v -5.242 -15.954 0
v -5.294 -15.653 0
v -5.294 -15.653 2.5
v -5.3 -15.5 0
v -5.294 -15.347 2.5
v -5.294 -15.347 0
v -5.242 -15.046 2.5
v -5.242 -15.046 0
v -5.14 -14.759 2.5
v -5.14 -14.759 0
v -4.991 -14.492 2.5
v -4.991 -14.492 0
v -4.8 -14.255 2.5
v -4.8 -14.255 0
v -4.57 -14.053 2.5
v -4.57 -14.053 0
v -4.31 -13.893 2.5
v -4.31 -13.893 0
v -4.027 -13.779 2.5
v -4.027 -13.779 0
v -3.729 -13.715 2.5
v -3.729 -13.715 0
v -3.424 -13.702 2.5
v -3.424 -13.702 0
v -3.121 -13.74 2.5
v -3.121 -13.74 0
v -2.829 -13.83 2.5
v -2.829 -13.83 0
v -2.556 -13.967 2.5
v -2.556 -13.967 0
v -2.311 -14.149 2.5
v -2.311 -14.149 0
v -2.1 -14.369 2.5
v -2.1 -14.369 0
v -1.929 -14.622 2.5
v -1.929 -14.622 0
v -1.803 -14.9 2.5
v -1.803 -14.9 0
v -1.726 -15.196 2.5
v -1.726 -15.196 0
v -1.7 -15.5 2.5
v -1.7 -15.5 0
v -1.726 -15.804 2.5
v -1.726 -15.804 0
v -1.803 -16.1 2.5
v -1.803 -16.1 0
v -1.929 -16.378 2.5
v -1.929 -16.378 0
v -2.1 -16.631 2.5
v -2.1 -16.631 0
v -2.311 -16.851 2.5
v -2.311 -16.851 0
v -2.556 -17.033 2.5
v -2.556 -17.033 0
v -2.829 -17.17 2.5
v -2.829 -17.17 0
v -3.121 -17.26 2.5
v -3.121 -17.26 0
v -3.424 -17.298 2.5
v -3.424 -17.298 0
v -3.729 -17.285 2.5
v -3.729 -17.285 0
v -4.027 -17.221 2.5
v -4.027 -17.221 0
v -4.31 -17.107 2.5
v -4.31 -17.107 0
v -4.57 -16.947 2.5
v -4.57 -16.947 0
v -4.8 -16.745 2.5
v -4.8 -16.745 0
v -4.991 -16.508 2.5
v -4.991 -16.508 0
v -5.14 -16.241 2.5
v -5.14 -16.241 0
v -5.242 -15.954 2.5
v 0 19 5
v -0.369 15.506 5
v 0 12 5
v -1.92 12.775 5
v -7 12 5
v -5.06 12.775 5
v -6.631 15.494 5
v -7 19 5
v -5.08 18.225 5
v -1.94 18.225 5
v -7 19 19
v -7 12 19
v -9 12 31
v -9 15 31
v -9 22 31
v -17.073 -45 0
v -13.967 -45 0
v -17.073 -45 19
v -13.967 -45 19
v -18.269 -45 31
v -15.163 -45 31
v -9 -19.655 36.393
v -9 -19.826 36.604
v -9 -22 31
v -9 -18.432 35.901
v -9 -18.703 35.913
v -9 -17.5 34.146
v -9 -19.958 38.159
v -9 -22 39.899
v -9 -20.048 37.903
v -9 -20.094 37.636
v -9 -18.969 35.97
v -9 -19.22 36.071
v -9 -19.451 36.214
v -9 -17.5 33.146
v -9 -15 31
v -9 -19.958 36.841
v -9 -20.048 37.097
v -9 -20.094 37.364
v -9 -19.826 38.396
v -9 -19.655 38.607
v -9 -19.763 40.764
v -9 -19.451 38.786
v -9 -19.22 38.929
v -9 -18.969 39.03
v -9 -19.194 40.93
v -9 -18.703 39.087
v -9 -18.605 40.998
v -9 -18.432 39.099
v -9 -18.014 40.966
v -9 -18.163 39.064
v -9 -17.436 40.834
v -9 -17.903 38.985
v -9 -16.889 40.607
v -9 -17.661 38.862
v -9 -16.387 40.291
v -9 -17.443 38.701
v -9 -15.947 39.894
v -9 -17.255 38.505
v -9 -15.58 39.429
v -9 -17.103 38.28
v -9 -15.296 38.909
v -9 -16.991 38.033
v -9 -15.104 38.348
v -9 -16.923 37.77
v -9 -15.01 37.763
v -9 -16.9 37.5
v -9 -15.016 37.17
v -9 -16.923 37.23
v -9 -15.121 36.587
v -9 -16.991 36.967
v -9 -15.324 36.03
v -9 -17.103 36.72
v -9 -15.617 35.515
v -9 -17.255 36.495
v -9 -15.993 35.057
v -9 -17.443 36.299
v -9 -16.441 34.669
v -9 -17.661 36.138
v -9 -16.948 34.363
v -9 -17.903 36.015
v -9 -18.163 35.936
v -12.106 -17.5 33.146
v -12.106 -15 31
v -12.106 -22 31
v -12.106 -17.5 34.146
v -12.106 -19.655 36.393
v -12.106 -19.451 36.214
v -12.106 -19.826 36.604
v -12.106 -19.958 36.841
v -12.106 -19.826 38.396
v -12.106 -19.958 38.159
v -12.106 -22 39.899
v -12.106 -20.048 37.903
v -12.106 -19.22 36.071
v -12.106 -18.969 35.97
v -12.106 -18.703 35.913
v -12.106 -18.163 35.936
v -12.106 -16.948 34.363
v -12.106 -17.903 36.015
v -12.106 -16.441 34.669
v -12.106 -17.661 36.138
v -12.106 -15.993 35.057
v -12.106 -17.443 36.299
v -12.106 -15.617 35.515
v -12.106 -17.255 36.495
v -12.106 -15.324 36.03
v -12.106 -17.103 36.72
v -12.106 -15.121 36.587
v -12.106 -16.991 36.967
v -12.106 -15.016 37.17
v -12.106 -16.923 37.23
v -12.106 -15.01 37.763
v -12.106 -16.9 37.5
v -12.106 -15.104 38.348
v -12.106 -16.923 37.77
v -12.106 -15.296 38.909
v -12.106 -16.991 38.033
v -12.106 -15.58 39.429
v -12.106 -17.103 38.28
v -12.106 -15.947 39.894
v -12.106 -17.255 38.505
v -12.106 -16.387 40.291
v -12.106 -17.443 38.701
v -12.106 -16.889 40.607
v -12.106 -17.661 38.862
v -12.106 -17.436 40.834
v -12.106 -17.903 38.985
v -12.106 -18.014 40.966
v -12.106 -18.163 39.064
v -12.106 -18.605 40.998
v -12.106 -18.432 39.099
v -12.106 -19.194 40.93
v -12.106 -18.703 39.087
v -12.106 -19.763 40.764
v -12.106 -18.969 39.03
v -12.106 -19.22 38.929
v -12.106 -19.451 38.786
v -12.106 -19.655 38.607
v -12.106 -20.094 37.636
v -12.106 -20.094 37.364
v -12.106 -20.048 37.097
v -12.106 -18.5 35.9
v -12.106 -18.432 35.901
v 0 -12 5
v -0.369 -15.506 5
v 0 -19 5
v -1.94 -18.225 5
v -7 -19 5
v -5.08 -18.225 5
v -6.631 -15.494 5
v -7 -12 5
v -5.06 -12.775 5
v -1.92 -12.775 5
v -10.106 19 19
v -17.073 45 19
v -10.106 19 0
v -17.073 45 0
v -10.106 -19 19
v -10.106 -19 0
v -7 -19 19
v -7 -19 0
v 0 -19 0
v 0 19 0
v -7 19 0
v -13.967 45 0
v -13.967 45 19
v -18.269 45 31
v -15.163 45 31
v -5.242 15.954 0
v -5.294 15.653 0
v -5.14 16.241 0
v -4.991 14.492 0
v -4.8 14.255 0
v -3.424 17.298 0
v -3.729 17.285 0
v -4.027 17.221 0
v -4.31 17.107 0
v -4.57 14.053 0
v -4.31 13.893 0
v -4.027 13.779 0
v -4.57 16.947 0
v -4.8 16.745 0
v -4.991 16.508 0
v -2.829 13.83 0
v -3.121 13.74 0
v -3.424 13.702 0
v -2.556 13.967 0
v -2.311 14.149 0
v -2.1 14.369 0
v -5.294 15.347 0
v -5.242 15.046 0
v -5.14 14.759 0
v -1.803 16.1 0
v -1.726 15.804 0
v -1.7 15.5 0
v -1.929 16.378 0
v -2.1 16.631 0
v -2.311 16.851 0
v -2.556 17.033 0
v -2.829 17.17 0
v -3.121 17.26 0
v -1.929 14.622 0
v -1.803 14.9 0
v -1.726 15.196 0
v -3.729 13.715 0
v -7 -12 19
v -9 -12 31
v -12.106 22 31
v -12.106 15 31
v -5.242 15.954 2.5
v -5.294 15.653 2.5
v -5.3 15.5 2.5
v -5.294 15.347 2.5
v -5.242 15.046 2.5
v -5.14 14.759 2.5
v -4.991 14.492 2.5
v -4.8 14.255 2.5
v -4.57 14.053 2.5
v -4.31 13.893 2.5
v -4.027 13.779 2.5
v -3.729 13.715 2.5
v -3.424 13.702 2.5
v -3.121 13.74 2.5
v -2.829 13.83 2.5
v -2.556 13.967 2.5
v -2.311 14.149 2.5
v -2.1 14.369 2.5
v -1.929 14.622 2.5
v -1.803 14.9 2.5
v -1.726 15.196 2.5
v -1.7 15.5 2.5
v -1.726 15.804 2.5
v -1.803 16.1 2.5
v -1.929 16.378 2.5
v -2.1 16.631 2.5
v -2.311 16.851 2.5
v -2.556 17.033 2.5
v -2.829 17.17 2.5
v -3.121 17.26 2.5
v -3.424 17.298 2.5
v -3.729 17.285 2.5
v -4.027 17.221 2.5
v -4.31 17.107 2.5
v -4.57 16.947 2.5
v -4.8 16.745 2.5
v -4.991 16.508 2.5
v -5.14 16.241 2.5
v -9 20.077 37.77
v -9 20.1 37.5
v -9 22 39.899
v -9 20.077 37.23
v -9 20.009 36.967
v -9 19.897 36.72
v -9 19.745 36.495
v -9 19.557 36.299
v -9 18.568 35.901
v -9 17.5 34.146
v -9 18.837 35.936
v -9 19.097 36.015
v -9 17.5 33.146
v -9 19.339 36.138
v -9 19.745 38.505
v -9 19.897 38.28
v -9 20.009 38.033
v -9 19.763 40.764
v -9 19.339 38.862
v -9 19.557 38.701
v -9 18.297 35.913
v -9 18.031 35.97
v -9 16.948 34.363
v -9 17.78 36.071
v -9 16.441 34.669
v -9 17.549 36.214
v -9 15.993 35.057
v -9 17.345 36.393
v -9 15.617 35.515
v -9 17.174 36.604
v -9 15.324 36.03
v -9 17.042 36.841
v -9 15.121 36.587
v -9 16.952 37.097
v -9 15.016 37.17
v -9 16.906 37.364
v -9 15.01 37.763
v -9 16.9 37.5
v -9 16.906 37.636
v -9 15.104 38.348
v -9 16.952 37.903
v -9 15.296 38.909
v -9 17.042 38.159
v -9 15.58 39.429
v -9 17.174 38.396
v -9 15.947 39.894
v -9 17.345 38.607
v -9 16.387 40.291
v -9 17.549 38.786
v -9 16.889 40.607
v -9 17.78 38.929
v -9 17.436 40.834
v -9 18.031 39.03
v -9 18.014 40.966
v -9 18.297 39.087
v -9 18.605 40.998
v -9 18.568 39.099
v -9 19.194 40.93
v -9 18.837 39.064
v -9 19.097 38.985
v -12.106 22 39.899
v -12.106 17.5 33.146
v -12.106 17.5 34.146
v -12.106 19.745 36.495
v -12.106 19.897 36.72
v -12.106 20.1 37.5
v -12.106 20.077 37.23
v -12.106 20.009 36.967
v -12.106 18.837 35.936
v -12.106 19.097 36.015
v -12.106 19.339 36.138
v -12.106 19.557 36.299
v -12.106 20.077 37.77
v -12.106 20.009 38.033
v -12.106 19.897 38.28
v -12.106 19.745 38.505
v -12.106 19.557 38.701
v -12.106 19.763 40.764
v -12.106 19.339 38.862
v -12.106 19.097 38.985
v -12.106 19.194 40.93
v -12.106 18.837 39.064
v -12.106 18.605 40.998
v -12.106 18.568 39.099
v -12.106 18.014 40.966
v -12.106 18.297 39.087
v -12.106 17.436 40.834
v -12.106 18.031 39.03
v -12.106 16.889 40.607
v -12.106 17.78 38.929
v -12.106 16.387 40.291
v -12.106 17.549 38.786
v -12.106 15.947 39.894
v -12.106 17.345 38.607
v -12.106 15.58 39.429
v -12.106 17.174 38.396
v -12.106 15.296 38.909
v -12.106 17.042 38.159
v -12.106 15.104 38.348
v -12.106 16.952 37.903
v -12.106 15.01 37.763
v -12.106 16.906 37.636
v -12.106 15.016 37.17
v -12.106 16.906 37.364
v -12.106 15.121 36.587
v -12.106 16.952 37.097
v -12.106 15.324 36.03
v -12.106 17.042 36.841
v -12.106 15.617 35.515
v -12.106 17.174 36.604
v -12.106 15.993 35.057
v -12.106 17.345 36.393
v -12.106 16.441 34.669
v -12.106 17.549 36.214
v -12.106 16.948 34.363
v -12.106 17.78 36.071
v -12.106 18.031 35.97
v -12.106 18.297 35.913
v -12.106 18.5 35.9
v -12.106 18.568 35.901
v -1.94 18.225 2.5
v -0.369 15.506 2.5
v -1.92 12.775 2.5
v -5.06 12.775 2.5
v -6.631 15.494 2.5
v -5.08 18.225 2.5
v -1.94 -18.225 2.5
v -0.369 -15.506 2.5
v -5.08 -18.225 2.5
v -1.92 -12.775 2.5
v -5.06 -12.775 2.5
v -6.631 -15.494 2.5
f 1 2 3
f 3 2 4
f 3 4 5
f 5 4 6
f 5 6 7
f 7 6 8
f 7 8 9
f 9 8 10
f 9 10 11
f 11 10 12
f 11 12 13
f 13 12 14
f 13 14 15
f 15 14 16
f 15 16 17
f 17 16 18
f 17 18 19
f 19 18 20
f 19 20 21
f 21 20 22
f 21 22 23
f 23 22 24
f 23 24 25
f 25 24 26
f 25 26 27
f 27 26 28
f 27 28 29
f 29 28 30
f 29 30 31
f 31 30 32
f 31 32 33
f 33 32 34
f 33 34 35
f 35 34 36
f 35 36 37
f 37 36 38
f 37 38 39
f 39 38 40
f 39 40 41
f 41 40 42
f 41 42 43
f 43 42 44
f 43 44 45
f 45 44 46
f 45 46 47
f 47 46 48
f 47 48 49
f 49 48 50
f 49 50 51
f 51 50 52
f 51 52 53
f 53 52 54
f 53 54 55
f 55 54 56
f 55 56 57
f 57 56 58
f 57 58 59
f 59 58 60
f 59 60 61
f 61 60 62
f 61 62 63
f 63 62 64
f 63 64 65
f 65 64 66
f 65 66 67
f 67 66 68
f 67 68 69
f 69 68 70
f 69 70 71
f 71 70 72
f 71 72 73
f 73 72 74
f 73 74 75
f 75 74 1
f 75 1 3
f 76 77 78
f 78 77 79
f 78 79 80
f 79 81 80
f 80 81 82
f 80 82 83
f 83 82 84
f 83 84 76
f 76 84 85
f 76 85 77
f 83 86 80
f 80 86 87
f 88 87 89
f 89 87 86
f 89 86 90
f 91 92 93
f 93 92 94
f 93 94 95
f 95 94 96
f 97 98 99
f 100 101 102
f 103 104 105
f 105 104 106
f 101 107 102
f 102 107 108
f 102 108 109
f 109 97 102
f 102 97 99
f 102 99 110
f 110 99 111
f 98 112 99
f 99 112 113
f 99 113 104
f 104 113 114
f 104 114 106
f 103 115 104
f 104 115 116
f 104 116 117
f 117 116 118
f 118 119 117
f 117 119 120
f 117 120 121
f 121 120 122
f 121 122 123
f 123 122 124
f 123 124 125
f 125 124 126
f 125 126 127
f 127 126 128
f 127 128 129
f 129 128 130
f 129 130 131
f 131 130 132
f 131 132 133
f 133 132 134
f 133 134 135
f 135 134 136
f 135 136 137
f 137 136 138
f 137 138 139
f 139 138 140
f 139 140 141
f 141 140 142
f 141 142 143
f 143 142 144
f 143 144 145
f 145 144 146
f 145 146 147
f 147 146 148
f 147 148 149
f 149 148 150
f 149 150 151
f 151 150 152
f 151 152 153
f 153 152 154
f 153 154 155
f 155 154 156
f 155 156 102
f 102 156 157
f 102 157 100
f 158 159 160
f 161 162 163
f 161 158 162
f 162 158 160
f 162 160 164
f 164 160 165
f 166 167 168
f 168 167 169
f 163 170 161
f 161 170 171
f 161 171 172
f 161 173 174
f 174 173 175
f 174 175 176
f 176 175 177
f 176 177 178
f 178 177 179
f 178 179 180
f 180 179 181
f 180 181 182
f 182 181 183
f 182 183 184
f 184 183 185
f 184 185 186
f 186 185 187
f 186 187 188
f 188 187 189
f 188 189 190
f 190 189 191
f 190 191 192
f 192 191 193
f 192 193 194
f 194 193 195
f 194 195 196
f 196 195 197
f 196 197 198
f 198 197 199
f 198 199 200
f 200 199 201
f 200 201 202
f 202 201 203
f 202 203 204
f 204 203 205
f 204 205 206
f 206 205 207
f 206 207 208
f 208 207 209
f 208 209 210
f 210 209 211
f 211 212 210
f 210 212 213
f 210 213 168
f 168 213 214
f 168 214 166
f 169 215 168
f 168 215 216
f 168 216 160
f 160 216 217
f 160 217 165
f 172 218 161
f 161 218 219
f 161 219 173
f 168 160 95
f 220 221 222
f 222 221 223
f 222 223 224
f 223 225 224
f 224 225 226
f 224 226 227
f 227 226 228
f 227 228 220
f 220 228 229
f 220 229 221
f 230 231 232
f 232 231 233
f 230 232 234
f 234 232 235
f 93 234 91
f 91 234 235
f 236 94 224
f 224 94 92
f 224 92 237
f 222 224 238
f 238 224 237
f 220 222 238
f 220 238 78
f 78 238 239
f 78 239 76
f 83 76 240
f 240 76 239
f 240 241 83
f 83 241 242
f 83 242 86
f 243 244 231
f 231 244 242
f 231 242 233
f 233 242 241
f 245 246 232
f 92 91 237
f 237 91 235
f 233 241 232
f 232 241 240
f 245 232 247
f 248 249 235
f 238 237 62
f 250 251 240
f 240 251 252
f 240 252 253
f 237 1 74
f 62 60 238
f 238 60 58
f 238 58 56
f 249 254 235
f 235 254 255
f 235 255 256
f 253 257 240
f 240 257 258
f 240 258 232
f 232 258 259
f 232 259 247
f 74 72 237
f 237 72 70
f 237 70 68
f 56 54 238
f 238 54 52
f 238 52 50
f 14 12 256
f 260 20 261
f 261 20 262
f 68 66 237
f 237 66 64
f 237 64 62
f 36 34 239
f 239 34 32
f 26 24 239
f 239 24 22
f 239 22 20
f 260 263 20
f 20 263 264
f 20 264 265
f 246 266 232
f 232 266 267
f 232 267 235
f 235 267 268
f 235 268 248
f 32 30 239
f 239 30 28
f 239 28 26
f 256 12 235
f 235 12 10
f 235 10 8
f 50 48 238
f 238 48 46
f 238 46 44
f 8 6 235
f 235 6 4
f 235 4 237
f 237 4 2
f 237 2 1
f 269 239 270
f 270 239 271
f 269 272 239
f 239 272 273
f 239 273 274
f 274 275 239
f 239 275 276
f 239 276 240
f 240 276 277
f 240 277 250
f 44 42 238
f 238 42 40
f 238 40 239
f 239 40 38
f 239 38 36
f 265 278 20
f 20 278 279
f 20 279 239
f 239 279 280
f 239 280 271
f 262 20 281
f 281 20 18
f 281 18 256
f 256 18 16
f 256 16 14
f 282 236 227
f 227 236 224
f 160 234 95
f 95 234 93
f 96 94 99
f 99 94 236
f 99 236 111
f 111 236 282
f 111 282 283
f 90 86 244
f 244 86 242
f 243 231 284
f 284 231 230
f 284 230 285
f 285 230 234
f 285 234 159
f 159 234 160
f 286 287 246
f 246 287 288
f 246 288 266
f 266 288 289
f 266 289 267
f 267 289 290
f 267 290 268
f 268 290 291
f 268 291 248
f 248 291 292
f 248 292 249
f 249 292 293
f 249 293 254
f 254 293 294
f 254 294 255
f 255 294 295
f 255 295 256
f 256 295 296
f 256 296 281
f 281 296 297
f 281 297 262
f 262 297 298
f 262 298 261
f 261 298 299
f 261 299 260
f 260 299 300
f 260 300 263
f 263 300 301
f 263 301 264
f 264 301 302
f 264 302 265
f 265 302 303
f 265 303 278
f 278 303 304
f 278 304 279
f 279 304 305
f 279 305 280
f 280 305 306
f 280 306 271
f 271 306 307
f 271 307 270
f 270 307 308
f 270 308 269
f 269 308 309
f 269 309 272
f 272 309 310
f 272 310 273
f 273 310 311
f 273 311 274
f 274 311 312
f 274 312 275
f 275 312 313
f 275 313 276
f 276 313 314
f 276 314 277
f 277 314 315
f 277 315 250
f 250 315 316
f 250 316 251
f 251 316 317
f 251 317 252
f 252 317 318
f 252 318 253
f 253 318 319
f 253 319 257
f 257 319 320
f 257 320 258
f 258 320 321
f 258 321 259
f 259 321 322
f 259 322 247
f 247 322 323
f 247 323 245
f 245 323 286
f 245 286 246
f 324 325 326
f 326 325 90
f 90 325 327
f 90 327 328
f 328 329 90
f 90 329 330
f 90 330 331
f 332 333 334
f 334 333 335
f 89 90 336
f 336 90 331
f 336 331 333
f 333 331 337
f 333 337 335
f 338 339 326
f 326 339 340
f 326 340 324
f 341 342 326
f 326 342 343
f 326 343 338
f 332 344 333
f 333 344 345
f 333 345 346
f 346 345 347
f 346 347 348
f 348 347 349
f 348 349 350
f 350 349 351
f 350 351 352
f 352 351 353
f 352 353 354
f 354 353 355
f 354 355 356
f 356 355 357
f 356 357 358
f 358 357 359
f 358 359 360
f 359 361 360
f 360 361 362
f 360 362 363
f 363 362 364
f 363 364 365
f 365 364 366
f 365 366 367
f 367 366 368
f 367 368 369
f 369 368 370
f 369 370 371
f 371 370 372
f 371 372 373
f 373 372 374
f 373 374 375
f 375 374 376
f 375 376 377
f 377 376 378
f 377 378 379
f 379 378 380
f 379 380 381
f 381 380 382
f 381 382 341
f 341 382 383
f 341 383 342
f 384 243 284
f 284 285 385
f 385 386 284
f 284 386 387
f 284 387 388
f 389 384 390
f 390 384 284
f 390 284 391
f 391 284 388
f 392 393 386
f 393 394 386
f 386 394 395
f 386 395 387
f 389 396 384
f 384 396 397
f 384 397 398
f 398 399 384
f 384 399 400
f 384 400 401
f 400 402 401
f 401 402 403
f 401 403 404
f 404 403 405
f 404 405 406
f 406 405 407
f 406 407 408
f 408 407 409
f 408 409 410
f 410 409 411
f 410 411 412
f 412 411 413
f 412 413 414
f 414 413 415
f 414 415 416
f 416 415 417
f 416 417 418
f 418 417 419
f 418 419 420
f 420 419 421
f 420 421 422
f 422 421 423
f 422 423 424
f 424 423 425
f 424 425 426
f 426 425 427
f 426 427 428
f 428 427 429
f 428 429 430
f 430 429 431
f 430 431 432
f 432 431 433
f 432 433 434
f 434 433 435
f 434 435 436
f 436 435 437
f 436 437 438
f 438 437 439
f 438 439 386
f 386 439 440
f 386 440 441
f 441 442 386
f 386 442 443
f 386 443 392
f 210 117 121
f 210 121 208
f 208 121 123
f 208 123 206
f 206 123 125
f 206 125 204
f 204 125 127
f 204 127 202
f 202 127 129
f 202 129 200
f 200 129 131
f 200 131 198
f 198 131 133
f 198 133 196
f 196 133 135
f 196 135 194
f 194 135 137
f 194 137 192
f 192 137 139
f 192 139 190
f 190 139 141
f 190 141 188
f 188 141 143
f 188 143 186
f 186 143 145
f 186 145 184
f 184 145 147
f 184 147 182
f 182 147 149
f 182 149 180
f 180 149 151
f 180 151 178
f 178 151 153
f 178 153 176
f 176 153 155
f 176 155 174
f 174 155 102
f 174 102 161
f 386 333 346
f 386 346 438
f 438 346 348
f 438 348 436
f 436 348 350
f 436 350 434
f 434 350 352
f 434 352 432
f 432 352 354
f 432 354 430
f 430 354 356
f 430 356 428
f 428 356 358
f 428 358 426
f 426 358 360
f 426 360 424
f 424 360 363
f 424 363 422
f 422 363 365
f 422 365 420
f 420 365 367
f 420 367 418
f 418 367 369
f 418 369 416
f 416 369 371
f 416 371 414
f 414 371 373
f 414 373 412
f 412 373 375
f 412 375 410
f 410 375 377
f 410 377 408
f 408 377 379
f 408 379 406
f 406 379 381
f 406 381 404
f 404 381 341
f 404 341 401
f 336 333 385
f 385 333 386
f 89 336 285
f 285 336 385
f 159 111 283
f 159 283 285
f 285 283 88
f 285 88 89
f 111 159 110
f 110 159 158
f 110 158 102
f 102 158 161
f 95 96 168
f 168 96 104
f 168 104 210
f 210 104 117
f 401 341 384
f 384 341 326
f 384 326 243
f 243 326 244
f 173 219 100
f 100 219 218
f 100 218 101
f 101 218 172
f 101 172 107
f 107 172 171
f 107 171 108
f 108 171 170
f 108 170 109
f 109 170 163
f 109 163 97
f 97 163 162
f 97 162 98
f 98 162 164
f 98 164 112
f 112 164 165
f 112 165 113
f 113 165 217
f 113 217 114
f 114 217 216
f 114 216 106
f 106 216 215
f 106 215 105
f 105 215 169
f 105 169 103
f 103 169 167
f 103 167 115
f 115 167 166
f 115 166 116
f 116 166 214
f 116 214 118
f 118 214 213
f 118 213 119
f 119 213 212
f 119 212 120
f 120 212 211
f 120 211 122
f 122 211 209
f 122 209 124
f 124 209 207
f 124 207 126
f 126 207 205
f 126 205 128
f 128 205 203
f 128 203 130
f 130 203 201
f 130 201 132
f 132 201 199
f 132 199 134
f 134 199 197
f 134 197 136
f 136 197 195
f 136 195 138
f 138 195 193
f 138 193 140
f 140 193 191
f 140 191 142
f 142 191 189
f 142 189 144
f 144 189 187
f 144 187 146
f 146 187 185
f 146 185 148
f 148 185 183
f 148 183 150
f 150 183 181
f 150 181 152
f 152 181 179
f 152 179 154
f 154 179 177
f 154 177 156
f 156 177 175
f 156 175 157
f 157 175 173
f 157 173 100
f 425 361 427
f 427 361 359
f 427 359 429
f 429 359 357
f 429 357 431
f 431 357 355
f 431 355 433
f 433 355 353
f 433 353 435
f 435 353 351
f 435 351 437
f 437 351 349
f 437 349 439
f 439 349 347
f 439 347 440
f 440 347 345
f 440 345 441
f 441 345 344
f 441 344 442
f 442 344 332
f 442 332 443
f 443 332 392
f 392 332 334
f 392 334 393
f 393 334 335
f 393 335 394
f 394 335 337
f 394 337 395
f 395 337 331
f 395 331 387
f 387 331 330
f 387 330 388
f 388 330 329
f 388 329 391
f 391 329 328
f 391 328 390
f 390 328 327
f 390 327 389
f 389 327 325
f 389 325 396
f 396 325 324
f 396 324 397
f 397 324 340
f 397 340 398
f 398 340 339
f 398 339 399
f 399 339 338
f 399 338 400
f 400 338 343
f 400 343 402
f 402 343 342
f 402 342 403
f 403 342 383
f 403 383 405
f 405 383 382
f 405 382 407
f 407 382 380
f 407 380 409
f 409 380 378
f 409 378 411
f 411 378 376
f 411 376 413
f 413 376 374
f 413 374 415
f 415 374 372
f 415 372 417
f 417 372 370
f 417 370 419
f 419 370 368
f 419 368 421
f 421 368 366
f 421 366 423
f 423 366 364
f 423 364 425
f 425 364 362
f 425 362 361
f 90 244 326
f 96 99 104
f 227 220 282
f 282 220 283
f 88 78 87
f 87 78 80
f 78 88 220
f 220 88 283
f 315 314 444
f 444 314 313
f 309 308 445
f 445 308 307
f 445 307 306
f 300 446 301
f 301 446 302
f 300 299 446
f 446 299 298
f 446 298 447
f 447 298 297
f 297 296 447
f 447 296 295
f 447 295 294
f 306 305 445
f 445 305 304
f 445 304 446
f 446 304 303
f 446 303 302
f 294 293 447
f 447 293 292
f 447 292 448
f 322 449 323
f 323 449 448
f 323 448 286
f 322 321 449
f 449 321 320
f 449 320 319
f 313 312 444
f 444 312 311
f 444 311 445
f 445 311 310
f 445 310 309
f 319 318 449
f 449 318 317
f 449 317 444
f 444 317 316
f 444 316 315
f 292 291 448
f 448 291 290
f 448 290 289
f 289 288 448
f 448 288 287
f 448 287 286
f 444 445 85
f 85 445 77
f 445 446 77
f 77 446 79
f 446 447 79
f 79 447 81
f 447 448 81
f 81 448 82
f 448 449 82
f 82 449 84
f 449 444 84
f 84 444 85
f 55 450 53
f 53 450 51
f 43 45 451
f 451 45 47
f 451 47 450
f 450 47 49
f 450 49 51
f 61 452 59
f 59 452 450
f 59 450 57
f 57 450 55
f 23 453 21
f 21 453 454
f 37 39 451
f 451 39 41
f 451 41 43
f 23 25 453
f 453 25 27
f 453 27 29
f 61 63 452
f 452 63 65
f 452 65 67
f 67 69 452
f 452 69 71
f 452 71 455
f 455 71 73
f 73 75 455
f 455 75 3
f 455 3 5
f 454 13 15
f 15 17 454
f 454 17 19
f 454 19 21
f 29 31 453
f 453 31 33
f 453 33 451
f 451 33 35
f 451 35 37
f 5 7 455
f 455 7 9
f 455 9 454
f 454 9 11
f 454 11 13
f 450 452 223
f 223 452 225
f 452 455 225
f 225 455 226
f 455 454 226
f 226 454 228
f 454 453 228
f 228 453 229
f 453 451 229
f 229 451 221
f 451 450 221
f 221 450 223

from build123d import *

# Parameters (mm, degrees)
BOSS_EXTRU_1_DEPTH      = 5
BOSS_EXTRU_2_DEPTH      = 14
ESQUISSE5_R             = 1.8
ENL_V_MAT_EXTRU_1_DEPTH = 56.088510189
BOSS_EXTRU_3_DEPTH      = 15
ESQUISSE7_R             = 1.6
ENL_V_MAT_EXTRU_2_DEPTH = 66.014675864
ESQUISSE3_4_OUTSIDE_W   = 40.383
ESQUISSE3_4_OUTSIDE_H   = 112.114
ENL_V_MAT_EXTRU_5_DEPTH = 58.617219265
NERVURE2_REACH          = 65.559
ESQUISSE9_WALL_W        = 156.631593158
ESQUISSE9_WALL_H        = 24
ENL_V_MAT_EXTRU_6_DEPTH = 2.5


with BuildPart() as part:
    # Esquisse1 → Boss.-Extru.1 (new body)
    with BuildSketch(Plane.XY):
        Polygon((-10.105828541, -19), (-10.105828541, 19), (-17.072507544, 45), (-13.966679003, 45), (-7, 19), (0, 19), (0, -19), (-7, -19), (-13.966679003, -45), (-17.072507544, -45), align=None)
    extrude(amount=BOSS_EXTRU_1_DEPTH)

    # Esquisse2 → Boss.-Extru.2 (add)
    with BuildSketch(Plane.XY.offset(5)):
        Polygon((-17.072507544, 45), (-10.105828541, 19), (-10.105828541, -19), (-17.072507544, -45), (-13.966679003, -45), (-7, -19), (-7, 19), (-13.966679003, 45), align=None)
    extrude(amount=BOSS_EXTRU_2_DEPTH)

    # Esquisse4 → Lissage1 section 0
    with BuildSketch(Plane.XY.offset(19)):
        with BuildLine():
            Line((-13.966679003, -45), (-7, -19))
            Line((-7, -19), (-7, 19))
            Line((-7, 19), (-13.966679003, 45))
            Line((-13.966679003, 45), (-17.072507544, 45))
            Line((-17.072507544, 45), (-10.105828541, 19))
            Line((-10.105828541, 19), (-10.105828541, -19))
            Line((-10.105828541, -19), (-17.072507544, -45))
            Line((-17.072507544, -45), (-13.966679003, -45))
        make_face()
    # Esquisse3 → Lissage1 section 1
    with BuildSketch(Plane.XY.offset(31)):
        with BuildLine():
            Line((-18.268659967, 45), (-15.162831426, 45))
            Line((-15.162831426, 45), (-9, 22))
            Line((-9, 22), (-9, -22))
            Line((-9, -22), (-15.162831426, -45))
            Line((-15.162831426, -45), (-18.268659967, -45))
            Line((-18.268659967, -45), (-12.105828541, -22))
            Line((-12.105828541, -22), (-12.105828541, 22))
            Line((-12.105828541, 22), (-18.268659967, 45))
        make_face()
    loft()

    # Esquisse5 → Enlèv. mat.-Extru.1 (cut, through all)
    with BuildSketch(Plane.XY.offset(5)):
        with Locations(Location((-3.5, -15.5, 0), (0, 0, 180))):
            Circle(ESQUISSE5_R)
        with Locations((-3.5, 15.5)):
            Circle(ESQUISSE5_R)
    extrude(amount=-ENL_V_MAT_EXTRU_1_DEPTH, mode=Mode.SUBTRACT)

    # Esquisse6 → Boss.-Extru.3 (add)
    with BuildSketch(Plane.XY.offset(31)):
        Polygon((-9, 45), (-18.268659967, 45), (-12.105828541, 22), (-12.105828541, -22), (-18.268659967, -45), (-9, -45), align=None)
    extrude(amount=BOSS_EXTRU_3_DEPTH)

    # Esquisse7 → Enlèv. mat.-Extru.2 (cut, through all)
    with BuildSketch(Plane.ZY.offset(9)):
        with BuildLine():
            ThreePointArc((40.764205464, 19.762918321), (38.632351614, 15.188236146), (34.145898034, 17.5))
            Line((34.145898034, 17.5), (33.145898034, 17.5))
            Line((33.145898034, 17.5), (31, 15))
            Line((31, 15), (31, -15))
            Line((31, -15), (33.145898034, -17.5))
            Line((33.145898034, -17.5), (34.145898034, -17.5))
            ThreePointArc((34.145898034, -17.5), (38.632351614, -15.188236146), (40.764205464, -19.762918321))
            Line((40.764205464, -19.762918321), (31, -45))
            Line((31, -45), (46, -45))
            Line((46, -45), (46, 45))
            Line((46, 45), (31, 45))
            Line((31, 45), (40.764205464, 19.762918321))
        make_face()
        with Locations(Location((37.5, 18.5, 0), (0, 0, 180))):
            Circle(ESQUISSE7_R)
        with Locations(Location((37.5, -18.5, 0), (0, 0, 90))):
            Circle(ESQUISSE7_R)
    extrude(amount=ENL_V_MAT_EXTRU_2_DEPTH, mode=Mode.SUBTRACT)

    # Esquisse3<4> outside → Enlèv. mat.-Extru.5 (cut, through all)
    with BuildSketch(Plane.XY.offset(31)):
        with Locations((-9.1345, 0)):
            Rectangle(ESQUISSE3_4_OUTSIDE_W, ESQUISSE3_4_OUTSIDE_H)
        Polygon((-18.268659967, 45), (-15.162831426, 45), (-9, 22), (-9, -22), (-15.162831426, -45), (-18.268659967, -45), (-12.105828541, -22), (-12.105828541, 22), align=None, mode=Mode.SUBTRACT)
    extrude(amount=ENL_V_MAT_EXTRU_5_DEPTH, mode=Mode.SUBTRACT)

    # Esquisse9 wall → Nervure2 (add, up to next)
    with BuildSketch(Plane(origin=(-4.5, 0, 18), x_dir=(-0.327110563883, 0, 0.94498607344), z_dir=(-0.94498607344, 0, -0.327110563883)), mode=Mode.PRIVATE) as nervure2_sk1:
        Rectangle(ESQUISSE9_WALL_W, ESQUISSE9_WALL_H)
    nervure2_tool1 = extrude(nervure2_sk1.sketch, amount=NERVURE2_REACH, mode=Mode.PRIVATE) - part.part
    add(nervure2_tool1.solids().sort_by_distance((-4.5, 0, 18))[0])

    # Esquisse10 → Enlèv. mat.-Extru.6 (cut)
    with BuildSketch(Plane.XY.offset(5)):
        Polygon((-5.079865302, 18.225165248), (-1.939526432, 18.225165248), (-0.369356996, 15.50555201), (-1.920134698, 12.774834752), (-5.060473568, 12.774834752), (-6.630643004, 15.49444799), align=None)
        Polygon((-6.630643004, -15.49444799), (-5.079865302, -18.225165248), (-1.939526432, -18.225165248), (-0.369356996, -15.50555201), (-1.920134698, -12.774834752), (-5.060473568, -12.774834752), align=None)
    extrude(amount=-ENL_V_MAT_EXTRU_6_DEPTH, mode=Mode.SUBTRACT)


solid = part.part
